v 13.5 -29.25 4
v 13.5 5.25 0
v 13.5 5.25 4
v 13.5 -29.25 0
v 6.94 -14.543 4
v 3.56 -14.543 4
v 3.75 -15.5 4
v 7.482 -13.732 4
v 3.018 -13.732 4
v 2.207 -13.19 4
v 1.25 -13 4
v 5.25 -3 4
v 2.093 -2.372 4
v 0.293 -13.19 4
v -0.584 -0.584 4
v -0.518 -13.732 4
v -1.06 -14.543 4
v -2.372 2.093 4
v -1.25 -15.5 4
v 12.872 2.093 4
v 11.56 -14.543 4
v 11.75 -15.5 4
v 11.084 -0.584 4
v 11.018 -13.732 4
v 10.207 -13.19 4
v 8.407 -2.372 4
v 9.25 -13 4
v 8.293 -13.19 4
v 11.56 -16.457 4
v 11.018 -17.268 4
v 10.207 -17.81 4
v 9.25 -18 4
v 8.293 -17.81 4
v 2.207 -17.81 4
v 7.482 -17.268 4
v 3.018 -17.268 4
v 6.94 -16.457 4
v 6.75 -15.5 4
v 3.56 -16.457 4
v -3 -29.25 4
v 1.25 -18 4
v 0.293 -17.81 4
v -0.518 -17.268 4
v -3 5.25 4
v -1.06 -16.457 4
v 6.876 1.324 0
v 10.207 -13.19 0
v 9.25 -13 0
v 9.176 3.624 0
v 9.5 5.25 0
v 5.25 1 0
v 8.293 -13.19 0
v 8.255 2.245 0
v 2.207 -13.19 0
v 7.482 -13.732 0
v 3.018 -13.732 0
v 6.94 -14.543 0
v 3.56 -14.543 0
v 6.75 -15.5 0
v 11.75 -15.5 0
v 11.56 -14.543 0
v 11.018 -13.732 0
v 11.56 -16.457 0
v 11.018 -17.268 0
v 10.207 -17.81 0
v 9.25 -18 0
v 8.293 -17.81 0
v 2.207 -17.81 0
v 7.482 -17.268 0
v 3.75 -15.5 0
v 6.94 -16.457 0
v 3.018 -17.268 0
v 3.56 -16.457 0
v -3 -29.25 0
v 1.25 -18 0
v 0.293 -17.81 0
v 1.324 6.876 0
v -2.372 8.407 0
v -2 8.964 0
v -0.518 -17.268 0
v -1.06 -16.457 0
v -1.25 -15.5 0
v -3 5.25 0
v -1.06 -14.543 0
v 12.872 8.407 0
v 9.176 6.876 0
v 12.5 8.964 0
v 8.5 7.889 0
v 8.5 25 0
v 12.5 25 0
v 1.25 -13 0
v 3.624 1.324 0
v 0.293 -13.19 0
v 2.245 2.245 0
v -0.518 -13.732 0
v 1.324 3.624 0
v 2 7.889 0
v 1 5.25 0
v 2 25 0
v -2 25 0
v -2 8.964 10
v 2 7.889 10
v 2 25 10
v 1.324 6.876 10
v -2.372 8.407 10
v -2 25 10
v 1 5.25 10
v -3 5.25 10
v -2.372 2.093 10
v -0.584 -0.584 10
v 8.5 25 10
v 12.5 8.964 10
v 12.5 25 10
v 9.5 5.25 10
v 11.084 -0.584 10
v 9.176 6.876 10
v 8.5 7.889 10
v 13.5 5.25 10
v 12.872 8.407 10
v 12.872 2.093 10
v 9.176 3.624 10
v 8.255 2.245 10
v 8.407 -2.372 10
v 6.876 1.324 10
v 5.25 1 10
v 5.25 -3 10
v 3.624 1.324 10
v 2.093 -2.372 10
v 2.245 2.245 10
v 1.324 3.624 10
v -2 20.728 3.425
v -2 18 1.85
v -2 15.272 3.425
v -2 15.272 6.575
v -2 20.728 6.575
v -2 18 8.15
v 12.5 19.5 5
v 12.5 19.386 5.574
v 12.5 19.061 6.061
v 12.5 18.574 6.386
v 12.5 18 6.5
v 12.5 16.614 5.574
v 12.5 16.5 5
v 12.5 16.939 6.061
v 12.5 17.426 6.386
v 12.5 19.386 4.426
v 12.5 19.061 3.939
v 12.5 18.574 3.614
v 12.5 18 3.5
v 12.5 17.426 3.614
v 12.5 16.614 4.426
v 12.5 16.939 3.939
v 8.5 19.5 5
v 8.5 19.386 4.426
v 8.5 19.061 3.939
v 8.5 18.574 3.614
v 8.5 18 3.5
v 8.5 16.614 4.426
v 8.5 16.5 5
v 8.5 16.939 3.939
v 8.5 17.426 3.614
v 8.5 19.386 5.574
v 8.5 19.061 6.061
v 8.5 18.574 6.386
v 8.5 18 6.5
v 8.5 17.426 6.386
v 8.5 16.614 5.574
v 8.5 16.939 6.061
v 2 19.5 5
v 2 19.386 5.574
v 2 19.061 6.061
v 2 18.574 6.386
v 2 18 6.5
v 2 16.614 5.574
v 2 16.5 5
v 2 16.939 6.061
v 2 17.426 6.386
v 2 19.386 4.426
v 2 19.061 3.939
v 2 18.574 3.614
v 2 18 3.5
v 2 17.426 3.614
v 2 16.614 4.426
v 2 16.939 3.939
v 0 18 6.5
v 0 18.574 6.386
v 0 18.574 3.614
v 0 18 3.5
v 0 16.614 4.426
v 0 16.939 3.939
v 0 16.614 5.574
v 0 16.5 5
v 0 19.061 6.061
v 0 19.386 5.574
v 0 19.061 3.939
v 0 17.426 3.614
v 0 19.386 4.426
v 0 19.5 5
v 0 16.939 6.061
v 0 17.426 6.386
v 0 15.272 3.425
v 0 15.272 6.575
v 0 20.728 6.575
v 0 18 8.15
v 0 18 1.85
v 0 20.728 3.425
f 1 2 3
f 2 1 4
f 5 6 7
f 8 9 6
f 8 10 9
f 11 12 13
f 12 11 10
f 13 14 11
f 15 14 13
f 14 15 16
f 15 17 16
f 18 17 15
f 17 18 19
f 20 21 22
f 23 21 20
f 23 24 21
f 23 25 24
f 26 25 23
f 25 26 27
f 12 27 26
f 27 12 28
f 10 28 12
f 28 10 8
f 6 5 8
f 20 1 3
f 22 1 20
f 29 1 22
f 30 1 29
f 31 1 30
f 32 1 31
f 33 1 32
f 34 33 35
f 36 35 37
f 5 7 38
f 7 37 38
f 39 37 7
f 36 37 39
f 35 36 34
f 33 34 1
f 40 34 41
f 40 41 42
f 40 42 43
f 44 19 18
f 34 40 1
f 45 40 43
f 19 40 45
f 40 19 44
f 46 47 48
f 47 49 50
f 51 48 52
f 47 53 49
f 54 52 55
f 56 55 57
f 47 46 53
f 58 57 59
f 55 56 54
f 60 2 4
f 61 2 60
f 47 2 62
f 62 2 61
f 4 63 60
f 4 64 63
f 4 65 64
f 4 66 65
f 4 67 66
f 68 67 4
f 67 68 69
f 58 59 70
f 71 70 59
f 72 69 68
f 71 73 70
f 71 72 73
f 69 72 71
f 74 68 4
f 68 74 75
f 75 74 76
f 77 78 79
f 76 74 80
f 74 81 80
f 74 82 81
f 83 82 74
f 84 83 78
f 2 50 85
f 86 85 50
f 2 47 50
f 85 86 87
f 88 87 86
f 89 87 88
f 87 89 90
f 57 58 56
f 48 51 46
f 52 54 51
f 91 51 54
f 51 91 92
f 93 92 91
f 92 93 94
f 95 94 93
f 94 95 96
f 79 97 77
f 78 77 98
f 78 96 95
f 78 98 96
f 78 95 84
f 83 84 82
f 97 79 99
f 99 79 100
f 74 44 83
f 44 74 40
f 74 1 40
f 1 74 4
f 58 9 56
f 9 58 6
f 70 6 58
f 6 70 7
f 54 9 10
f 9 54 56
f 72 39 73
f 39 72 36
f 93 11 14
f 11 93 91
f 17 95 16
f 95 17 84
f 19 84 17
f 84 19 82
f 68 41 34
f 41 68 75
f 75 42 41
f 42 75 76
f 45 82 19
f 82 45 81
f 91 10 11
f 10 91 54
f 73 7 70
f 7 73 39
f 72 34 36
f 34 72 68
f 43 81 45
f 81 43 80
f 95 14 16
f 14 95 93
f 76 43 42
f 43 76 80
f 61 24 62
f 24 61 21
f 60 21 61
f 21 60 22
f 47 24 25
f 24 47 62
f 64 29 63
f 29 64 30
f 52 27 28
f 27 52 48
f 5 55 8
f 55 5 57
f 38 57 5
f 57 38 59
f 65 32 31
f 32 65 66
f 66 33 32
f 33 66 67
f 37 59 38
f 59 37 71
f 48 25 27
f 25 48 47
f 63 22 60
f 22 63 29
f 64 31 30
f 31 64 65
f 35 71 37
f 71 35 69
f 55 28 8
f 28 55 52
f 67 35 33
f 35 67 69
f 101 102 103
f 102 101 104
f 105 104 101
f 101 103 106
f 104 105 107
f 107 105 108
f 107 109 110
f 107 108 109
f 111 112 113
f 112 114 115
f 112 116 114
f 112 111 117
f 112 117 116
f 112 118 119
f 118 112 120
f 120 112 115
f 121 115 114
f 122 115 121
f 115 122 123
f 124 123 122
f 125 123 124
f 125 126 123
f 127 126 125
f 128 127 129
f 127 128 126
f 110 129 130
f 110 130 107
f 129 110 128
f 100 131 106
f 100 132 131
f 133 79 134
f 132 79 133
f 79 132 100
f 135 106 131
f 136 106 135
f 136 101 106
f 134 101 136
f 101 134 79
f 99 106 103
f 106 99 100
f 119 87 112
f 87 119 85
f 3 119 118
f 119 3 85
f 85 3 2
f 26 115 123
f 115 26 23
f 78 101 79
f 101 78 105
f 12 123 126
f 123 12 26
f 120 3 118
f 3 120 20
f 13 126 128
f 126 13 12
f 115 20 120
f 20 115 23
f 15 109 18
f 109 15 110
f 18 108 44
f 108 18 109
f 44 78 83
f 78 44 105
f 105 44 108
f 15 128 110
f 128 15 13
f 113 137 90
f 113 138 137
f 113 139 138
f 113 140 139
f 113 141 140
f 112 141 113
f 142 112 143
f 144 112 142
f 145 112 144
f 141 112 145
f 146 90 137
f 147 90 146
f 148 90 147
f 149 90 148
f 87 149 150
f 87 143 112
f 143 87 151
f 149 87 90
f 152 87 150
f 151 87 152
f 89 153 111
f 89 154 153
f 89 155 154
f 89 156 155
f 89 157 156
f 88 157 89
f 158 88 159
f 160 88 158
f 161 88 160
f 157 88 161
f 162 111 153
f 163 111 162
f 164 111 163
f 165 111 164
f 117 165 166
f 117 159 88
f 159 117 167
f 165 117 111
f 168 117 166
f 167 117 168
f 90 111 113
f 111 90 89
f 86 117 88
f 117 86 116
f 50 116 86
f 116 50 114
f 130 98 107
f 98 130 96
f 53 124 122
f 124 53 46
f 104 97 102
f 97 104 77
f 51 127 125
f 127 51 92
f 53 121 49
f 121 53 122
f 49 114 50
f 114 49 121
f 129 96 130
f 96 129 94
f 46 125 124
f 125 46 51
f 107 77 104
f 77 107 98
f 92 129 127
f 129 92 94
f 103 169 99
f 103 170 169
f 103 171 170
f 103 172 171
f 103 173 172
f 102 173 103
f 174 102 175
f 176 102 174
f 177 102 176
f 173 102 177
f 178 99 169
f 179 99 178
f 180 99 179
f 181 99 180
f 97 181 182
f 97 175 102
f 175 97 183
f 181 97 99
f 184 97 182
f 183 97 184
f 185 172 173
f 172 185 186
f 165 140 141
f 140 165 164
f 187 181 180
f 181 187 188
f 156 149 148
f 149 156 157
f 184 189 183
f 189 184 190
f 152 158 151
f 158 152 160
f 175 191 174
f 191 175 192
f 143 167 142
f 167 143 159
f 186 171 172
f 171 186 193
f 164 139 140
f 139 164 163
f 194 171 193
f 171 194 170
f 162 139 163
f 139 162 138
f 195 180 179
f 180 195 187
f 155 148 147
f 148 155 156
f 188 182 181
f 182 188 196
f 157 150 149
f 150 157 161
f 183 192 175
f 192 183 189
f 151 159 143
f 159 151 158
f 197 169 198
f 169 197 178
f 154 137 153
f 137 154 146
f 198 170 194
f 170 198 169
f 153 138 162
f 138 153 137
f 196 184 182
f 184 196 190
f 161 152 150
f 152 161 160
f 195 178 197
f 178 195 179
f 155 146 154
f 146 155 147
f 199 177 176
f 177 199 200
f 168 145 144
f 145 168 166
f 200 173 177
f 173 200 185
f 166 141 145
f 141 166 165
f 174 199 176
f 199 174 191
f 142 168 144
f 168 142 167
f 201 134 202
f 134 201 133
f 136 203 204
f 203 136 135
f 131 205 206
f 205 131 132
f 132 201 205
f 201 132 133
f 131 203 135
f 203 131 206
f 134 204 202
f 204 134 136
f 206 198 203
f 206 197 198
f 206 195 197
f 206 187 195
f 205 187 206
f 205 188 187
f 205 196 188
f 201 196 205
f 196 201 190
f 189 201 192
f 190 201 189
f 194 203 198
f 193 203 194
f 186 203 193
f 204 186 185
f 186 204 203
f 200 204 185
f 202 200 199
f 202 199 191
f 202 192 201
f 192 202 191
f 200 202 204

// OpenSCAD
l=50;
w=4;
h=10;
rod_dia=8.5;
screw_dia=3;
limit_hole_dist=9.5;
limit_dia=2.5;

b_rim=w;
b_thick=w;
bz_l=27.5+b_rim+b_rim;
by=27.5+b_thick;
bx=rod_dia+b_rim+b_rim;;
bmh_d=5;
bmh_w=8;


fn=16;

difference() {
    union() {
        translate([-w/2, -l/2+22+rod_dia/2+4, 0]) cube([w+2,l-22-rod_dia/2-4,h]);
        translate([w/2+rod_dia/2-1, -l/2+22+rod_dia/2+4, h/2]) cylinder(h=h, d=rod_dia+8, center=true, $fn=fn);
        translate([w/2+rod_dia-2, -l/2+22+rod_dia/2+4, 0]) cube([w,l-22-rod_dia/2-4,h]);
        
        translate([w/2+rod_dia/2-1-(bx/2), -l/2-rod_dia/2, 0]) difference() {
        cube([bx,by+3,b_thick]);
        translate([bx/2-(bmh_w/2), (by-b_thick)/2, b_thick/2]) cylinder(h=b_thick+2,d=bmh_d, center=true, $fn=fn);
        translate([bx/2+(bmh_w/2), (by-b_thick)/2, b_thick/2]) cylinder(h=b_thick+2,d=bmh_d, center=true, $fn=fn);
    }
    }
        translate([w/2+rod_dia/2-1, -l/2+22+rod_dia/2+4, h/2]) cylinder(h=h+2, d=rod_dia, center=true, $fn=fn);
        translate([w/2, -l/2+22+rod_dia/2+4, -1]) cube([rod_dia-2,l-22-rod_dia/2-4,h+2]);
    translate([6, l/2-7, h/2]) rotate([0,90,0]) cylinder(h=w+w+10+2, d=screw_dia, center=true, $fn=fn);
    translate([-w/2, l/2-7, h/2]) rotate([0,90,0]) cylinder(h=w, d=6.3, center=true, $fn=6);
}
